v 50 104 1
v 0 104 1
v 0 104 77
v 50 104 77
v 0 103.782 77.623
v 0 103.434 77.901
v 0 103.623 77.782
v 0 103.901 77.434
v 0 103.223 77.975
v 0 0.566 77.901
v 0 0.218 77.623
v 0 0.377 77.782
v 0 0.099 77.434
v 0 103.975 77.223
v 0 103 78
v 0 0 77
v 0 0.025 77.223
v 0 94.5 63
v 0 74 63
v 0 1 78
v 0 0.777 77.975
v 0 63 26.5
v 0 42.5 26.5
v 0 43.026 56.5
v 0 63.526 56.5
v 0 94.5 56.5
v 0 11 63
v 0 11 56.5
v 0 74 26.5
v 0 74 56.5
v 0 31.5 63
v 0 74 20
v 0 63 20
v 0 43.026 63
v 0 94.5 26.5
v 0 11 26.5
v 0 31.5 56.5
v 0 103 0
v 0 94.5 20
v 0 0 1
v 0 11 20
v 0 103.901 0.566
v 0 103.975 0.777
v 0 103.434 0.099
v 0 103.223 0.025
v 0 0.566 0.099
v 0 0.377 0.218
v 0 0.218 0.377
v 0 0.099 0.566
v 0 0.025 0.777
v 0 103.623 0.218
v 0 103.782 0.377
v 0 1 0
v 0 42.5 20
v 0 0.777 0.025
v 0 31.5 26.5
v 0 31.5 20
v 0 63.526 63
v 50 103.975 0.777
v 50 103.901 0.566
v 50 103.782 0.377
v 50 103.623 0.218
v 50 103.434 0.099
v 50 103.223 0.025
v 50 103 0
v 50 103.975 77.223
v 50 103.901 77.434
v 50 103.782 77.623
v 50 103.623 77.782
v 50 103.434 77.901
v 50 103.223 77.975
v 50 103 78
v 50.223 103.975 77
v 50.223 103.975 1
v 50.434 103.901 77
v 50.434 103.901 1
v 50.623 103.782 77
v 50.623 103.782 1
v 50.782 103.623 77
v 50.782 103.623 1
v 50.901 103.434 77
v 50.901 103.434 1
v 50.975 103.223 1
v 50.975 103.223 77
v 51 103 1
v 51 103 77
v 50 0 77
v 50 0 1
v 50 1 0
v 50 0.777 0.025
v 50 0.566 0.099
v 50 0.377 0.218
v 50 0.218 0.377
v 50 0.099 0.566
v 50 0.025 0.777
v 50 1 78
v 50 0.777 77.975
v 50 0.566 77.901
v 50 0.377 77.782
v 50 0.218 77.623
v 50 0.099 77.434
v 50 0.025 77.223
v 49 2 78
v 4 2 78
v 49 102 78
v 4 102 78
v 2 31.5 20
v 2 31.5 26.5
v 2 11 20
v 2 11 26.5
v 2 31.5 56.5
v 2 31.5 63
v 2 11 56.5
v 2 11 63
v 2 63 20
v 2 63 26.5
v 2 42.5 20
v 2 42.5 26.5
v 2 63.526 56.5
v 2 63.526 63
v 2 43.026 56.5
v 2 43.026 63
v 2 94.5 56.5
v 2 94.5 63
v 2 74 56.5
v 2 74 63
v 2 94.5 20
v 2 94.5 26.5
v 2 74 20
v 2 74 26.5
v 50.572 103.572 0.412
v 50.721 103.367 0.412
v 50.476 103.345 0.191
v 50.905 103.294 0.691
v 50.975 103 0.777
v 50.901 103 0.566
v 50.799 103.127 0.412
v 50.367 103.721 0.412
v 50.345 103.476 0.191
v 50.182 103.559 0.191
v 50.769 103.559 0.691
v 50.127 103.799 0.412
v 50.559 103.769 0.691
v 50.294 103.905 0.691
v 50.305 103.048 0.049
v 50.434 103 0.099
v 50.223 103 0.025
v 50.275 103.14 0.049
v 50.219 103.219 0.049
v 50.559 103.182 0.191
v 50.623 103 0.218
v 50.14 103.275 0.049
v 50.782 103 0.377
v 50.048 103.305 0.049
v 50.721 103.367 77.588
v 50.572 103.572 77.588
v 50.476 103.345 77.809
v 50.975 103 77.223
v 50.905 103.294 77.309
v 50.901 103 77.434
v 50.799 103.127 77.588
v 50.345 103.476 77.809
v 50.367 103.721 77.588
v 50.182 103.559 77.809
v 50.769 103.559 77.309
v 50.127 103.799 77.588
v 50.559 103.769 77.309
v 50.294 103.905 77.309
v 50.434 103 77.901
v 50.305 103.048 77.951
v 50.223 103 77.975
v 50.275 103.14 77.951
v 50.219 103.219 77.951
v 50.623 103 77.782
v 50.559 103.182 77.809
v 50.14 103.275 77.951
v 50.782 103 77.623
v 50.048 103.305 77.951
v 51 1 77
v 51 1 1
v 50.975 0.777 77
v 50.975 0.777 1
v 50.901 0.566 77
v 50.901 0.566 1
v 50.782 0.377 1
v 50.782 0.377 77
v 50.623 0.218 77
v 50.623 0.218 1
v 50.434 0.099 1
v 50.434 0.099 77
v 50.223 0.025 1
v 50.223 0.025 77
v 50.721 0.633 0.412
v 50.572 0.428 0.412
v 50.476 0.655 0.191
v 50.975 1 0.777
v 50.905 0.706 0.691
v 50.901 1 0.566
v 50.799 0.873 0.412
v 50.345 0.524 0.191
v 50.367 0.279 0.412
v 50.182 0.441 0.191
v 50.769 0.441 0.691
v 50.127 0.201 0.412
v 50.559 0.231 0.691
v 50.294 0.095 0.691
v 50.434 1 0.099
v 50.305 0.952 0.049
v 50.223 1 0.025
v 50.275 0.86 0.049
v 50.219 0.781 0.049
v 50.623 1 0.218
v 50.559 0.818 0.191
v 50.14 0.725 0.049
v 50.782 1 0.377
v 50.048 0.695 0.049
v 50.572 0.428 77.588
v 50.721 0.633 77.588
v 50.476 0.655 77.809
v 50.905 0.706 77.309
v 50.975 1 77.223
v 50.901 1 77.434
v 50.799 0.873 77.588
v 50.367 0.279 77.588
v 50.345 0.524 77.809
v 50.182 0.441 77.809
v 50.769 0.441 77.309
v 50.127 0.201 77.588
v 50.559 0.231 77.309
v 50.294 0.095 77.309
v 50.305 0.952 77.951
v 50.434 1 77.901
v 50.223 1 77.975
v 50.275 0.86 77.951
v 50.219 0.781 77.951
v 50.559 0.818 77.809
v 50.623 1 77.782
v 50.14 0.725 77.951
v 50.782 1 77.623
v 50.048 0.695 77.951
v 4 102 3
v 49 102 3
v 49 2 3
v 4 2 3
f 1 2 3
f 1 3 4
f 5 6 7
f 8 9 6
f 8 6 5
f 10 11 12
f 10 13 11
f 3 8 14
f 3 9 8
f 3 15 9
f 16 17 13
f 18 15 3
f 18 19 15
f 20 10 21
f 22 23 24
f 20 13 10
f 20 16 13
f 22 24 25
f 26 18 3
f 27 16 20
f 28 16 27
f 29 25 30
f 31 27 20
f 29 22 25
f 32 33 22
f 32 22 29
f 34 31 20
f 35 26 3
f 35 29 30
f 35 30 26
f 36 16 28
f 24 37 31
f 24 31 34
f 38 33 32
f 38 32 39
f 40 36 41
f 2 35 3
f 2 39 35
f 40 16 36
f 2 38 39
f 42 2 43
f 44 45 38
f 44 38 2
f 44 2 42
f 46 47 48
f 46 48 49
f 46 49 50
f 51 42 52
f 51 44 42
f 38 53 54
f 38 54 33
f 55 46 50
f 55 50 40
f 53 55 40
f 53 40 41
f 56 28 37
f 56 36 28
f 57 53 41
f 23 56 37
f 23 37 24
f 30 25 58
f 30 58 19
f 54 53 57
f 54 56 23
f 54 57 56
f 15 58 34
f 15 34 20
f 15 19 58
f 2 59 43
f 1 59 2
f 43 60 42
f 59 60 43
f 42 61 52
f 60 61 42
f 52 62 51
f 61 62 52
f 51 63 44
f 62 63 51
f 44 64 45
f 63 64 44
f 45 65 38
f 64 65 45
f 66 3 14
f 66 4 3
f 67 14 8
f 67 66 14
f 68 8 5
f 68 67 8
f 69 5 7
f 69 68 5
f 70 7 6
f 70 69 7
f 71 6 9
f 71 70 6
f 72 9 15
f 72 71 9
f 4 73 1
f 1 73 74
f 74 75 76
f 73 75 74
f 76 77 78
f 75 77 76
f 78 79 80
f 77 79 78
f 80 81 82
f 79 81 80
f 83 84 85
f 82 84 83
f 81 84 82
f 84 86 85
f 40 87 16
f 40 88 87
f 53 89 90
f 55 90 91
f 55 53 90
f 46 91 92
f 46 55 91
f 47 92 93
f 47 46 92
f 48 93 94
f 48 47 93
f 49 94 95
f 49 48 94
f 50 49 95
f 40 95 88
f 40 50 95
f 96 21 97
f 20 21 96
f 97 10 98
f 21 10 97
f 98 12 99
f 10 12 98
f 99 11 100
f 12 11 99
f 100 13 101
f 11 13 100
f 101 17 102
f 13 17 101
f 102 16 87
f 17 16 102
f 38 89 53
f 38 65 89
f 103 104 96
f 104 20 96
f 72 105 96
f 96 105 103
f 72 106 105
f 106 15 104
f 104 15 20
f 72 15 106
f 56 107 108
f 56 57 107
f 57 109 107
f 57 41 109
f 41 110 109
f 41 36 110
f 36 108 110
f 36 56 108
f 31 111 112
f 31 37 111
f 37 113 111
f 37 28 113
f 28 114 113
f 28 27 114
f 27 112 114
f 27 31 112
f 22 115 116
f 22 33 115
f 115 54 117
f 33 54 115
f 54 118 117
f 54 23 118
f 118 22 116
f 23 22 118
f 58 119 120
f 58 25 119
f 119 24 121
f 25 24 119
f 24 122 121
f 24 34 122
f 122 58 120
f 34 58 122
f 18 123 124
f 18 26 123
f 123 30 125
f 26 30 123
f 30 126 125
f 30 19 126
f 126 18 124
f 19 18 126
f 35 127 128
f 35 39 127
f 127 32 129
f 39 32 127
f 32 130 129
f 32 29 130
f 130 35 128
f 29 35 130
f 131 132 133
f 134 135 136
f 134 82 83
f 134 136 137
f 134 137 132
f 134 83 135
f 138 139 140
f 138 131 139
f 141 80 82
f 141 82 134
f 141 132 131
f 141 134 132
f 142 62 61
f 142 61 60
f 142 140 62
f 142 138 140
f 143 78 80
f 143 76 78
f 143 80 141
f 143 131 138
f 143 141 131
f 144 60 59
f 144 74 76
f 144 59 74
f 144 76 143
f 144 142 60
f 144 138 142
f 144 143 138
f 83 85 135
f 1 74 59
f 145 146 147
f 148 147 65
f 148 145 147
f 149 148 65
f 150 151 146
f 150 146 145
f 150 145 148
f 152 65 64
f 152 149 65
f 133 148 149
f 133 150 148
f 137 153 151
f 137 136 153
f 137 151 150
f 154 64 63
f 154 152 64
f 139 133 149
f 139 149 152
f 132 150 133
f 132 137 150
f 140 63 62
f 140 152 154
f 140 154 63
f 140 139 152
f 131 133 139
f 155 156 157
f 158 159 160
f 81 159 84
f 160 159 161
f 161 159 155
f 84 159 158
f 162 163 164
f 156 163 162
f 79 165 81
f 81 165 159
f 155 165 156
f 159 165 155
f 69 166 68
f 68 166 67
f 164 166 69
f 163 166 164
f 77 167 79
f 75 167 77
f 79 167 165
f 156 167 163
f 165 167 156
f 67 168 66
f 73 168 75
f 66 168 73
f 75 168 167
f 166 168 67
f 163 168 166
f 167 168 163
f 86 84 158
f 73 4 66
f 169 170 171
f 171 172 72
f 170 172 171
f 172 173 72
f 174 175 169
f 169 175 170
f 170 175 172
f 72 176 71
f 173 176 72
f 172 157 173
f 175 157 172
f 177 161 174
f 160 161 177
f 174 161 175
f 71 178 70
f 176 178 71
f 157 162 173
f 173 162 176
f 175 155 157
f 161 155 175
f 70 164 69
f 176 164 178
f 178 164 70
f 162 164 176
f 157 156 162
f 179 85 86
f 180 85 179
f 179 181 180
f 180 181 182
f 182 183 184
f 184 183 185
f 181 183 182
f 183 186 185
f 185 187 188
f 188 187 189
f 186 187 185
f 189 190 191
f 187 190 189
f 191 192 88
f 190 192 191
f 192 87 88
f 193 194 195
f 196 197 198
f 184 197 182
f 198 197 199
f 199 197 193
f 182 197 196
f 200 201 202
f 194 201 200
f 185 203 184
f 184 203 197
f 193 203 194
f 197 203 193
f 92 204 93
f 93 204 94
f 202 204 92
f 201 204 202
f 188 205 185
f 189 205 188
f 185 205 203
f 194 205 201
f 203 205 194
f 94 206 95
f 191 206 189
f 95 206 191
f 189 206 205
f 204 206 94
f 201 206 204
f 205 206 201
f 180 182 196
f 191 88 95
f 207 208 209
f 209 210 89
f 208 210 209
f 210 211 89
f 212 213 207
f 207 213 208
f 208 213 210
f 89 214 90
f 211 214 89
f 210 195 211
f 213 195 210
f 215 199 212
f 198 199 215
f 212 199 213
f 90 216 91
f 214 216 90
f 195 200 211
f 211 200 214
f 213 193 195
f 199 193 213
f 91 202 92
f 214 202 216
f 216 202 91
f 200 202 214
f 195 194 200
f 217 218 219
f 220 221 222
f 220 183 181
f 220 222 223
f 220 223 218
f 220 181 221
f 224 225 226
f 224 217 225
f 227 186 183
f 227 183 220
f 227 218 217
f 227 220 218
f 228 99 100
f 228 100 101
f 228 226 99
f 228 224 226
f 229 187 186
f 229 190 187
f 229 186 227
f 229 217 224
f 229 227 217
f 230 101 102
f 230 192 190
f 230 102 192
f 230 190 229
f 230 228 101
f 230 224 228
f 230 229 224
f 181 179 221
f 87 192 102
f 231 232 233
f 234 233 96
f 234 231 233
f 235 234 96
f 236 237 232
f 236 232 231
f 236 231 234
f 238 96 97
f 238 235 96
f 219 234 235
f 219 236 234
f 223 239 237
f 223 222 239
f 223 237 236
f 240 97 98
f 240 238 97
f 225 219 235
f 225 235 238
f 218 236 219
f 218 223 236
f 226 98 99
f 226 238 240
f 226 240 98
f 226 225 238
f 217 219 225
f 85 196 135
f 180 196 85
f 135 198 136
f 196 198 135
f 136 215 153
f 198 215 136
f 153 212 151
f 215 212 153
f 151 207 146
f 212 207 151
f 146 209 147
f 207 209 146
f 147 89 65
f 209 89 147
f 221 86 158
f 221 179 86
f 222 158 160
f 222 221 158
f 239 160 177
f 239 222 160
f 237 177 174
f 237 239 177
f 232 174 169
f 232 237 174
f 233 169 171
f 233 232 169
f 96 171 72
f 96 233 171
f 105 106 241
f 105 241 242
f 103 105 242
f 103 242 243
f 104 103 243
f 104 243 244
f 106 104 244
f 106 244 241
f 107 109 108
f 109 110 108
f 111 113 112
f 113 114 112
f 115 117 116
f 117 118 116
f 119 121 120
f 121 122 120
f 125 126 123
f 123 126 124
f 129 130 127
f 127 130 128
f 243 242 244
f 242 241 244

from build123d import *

# Parameters (mm, degrees)
SKETCH_W        = 51
SKETCH_H        = 104
PAD_DEPTH       = 78
SKETCH001_W     = 45
SKETCH001_H     = 100
POCKET_DEPTH    = 75
FILLET_R        = 1
SKETCH002_W     = 20.5
SKETCH002_H     = 6.5
POCKET001_DEPTH = 2


with BuildPart() as part:
    # Sketch → Pad (new body)
    with BuildSketch(Plane.XY):
        with Locations((25.5, 52)):
            Rectangle(SKETCH_W, SKETCH_H)
    extrude(amount=PAD_DEPTH)

    # Sketch001 (on Face6 of Pad) → Pocket (cut)
    with BuildSketch(Plane.XY.offset(78)):
        with Locations((26.5, 52)):
            Rectangle(SKETCH001_W, SKETCH001_H)
    extrude(amount=-POCKET_DEPTH, mode=Mode.SUBTRACT)

    # Fillet
    fillet_edges = [part.edges().sort_by_distance(p)[0] for p in [
        (51, 0, 39),
        (51, 104, 39),
        (51, 52, 0),
        (25.5, 0, 0),
        (51, 52, 78),
        (25.5, 0, 78),
        (25.5, 104, 78),
        (25.5, 104, 0),
    ]]
    fillet(fillet_edges, radius=FILLET_R)

    # Sketch002 (on Face2 of Fillet) → Pocket001 (cut, symmetric)
    with BuildSketch(Plane(origin=(0, 0, 0), x_dir=(0, -1, 0), z_dir=(-1, 0, 0))):
        with Locations((-84.25, 59.75)):
            Rectangle(SKETCH002_W, SKETCH002_H)
        with Locations((-84.25, 23.25)):
            Rectangle(SKETCH002_W, SKETCH002_H)
        with Locations((-21.25, 59.75)):
            Rectangle(SKETCH002_W, SKETCH002_H)
        with Locations((-21.25, 23.25)):
            Rectangle(SKETCH002_W, SKETCH002_H)
        with Locations((-53.276467, 59.75)):
            Rectangle(SKETCH002_W, SKETCH002_H)
        with Locations((-52.75, 23.25)):
            Rectangle(SKETCH002_W, SKETCH002_H)
    extrude(amount=POCKET001_DEPTH, both=True, mode=Mode.SUBTRACT)


solid = part.part
